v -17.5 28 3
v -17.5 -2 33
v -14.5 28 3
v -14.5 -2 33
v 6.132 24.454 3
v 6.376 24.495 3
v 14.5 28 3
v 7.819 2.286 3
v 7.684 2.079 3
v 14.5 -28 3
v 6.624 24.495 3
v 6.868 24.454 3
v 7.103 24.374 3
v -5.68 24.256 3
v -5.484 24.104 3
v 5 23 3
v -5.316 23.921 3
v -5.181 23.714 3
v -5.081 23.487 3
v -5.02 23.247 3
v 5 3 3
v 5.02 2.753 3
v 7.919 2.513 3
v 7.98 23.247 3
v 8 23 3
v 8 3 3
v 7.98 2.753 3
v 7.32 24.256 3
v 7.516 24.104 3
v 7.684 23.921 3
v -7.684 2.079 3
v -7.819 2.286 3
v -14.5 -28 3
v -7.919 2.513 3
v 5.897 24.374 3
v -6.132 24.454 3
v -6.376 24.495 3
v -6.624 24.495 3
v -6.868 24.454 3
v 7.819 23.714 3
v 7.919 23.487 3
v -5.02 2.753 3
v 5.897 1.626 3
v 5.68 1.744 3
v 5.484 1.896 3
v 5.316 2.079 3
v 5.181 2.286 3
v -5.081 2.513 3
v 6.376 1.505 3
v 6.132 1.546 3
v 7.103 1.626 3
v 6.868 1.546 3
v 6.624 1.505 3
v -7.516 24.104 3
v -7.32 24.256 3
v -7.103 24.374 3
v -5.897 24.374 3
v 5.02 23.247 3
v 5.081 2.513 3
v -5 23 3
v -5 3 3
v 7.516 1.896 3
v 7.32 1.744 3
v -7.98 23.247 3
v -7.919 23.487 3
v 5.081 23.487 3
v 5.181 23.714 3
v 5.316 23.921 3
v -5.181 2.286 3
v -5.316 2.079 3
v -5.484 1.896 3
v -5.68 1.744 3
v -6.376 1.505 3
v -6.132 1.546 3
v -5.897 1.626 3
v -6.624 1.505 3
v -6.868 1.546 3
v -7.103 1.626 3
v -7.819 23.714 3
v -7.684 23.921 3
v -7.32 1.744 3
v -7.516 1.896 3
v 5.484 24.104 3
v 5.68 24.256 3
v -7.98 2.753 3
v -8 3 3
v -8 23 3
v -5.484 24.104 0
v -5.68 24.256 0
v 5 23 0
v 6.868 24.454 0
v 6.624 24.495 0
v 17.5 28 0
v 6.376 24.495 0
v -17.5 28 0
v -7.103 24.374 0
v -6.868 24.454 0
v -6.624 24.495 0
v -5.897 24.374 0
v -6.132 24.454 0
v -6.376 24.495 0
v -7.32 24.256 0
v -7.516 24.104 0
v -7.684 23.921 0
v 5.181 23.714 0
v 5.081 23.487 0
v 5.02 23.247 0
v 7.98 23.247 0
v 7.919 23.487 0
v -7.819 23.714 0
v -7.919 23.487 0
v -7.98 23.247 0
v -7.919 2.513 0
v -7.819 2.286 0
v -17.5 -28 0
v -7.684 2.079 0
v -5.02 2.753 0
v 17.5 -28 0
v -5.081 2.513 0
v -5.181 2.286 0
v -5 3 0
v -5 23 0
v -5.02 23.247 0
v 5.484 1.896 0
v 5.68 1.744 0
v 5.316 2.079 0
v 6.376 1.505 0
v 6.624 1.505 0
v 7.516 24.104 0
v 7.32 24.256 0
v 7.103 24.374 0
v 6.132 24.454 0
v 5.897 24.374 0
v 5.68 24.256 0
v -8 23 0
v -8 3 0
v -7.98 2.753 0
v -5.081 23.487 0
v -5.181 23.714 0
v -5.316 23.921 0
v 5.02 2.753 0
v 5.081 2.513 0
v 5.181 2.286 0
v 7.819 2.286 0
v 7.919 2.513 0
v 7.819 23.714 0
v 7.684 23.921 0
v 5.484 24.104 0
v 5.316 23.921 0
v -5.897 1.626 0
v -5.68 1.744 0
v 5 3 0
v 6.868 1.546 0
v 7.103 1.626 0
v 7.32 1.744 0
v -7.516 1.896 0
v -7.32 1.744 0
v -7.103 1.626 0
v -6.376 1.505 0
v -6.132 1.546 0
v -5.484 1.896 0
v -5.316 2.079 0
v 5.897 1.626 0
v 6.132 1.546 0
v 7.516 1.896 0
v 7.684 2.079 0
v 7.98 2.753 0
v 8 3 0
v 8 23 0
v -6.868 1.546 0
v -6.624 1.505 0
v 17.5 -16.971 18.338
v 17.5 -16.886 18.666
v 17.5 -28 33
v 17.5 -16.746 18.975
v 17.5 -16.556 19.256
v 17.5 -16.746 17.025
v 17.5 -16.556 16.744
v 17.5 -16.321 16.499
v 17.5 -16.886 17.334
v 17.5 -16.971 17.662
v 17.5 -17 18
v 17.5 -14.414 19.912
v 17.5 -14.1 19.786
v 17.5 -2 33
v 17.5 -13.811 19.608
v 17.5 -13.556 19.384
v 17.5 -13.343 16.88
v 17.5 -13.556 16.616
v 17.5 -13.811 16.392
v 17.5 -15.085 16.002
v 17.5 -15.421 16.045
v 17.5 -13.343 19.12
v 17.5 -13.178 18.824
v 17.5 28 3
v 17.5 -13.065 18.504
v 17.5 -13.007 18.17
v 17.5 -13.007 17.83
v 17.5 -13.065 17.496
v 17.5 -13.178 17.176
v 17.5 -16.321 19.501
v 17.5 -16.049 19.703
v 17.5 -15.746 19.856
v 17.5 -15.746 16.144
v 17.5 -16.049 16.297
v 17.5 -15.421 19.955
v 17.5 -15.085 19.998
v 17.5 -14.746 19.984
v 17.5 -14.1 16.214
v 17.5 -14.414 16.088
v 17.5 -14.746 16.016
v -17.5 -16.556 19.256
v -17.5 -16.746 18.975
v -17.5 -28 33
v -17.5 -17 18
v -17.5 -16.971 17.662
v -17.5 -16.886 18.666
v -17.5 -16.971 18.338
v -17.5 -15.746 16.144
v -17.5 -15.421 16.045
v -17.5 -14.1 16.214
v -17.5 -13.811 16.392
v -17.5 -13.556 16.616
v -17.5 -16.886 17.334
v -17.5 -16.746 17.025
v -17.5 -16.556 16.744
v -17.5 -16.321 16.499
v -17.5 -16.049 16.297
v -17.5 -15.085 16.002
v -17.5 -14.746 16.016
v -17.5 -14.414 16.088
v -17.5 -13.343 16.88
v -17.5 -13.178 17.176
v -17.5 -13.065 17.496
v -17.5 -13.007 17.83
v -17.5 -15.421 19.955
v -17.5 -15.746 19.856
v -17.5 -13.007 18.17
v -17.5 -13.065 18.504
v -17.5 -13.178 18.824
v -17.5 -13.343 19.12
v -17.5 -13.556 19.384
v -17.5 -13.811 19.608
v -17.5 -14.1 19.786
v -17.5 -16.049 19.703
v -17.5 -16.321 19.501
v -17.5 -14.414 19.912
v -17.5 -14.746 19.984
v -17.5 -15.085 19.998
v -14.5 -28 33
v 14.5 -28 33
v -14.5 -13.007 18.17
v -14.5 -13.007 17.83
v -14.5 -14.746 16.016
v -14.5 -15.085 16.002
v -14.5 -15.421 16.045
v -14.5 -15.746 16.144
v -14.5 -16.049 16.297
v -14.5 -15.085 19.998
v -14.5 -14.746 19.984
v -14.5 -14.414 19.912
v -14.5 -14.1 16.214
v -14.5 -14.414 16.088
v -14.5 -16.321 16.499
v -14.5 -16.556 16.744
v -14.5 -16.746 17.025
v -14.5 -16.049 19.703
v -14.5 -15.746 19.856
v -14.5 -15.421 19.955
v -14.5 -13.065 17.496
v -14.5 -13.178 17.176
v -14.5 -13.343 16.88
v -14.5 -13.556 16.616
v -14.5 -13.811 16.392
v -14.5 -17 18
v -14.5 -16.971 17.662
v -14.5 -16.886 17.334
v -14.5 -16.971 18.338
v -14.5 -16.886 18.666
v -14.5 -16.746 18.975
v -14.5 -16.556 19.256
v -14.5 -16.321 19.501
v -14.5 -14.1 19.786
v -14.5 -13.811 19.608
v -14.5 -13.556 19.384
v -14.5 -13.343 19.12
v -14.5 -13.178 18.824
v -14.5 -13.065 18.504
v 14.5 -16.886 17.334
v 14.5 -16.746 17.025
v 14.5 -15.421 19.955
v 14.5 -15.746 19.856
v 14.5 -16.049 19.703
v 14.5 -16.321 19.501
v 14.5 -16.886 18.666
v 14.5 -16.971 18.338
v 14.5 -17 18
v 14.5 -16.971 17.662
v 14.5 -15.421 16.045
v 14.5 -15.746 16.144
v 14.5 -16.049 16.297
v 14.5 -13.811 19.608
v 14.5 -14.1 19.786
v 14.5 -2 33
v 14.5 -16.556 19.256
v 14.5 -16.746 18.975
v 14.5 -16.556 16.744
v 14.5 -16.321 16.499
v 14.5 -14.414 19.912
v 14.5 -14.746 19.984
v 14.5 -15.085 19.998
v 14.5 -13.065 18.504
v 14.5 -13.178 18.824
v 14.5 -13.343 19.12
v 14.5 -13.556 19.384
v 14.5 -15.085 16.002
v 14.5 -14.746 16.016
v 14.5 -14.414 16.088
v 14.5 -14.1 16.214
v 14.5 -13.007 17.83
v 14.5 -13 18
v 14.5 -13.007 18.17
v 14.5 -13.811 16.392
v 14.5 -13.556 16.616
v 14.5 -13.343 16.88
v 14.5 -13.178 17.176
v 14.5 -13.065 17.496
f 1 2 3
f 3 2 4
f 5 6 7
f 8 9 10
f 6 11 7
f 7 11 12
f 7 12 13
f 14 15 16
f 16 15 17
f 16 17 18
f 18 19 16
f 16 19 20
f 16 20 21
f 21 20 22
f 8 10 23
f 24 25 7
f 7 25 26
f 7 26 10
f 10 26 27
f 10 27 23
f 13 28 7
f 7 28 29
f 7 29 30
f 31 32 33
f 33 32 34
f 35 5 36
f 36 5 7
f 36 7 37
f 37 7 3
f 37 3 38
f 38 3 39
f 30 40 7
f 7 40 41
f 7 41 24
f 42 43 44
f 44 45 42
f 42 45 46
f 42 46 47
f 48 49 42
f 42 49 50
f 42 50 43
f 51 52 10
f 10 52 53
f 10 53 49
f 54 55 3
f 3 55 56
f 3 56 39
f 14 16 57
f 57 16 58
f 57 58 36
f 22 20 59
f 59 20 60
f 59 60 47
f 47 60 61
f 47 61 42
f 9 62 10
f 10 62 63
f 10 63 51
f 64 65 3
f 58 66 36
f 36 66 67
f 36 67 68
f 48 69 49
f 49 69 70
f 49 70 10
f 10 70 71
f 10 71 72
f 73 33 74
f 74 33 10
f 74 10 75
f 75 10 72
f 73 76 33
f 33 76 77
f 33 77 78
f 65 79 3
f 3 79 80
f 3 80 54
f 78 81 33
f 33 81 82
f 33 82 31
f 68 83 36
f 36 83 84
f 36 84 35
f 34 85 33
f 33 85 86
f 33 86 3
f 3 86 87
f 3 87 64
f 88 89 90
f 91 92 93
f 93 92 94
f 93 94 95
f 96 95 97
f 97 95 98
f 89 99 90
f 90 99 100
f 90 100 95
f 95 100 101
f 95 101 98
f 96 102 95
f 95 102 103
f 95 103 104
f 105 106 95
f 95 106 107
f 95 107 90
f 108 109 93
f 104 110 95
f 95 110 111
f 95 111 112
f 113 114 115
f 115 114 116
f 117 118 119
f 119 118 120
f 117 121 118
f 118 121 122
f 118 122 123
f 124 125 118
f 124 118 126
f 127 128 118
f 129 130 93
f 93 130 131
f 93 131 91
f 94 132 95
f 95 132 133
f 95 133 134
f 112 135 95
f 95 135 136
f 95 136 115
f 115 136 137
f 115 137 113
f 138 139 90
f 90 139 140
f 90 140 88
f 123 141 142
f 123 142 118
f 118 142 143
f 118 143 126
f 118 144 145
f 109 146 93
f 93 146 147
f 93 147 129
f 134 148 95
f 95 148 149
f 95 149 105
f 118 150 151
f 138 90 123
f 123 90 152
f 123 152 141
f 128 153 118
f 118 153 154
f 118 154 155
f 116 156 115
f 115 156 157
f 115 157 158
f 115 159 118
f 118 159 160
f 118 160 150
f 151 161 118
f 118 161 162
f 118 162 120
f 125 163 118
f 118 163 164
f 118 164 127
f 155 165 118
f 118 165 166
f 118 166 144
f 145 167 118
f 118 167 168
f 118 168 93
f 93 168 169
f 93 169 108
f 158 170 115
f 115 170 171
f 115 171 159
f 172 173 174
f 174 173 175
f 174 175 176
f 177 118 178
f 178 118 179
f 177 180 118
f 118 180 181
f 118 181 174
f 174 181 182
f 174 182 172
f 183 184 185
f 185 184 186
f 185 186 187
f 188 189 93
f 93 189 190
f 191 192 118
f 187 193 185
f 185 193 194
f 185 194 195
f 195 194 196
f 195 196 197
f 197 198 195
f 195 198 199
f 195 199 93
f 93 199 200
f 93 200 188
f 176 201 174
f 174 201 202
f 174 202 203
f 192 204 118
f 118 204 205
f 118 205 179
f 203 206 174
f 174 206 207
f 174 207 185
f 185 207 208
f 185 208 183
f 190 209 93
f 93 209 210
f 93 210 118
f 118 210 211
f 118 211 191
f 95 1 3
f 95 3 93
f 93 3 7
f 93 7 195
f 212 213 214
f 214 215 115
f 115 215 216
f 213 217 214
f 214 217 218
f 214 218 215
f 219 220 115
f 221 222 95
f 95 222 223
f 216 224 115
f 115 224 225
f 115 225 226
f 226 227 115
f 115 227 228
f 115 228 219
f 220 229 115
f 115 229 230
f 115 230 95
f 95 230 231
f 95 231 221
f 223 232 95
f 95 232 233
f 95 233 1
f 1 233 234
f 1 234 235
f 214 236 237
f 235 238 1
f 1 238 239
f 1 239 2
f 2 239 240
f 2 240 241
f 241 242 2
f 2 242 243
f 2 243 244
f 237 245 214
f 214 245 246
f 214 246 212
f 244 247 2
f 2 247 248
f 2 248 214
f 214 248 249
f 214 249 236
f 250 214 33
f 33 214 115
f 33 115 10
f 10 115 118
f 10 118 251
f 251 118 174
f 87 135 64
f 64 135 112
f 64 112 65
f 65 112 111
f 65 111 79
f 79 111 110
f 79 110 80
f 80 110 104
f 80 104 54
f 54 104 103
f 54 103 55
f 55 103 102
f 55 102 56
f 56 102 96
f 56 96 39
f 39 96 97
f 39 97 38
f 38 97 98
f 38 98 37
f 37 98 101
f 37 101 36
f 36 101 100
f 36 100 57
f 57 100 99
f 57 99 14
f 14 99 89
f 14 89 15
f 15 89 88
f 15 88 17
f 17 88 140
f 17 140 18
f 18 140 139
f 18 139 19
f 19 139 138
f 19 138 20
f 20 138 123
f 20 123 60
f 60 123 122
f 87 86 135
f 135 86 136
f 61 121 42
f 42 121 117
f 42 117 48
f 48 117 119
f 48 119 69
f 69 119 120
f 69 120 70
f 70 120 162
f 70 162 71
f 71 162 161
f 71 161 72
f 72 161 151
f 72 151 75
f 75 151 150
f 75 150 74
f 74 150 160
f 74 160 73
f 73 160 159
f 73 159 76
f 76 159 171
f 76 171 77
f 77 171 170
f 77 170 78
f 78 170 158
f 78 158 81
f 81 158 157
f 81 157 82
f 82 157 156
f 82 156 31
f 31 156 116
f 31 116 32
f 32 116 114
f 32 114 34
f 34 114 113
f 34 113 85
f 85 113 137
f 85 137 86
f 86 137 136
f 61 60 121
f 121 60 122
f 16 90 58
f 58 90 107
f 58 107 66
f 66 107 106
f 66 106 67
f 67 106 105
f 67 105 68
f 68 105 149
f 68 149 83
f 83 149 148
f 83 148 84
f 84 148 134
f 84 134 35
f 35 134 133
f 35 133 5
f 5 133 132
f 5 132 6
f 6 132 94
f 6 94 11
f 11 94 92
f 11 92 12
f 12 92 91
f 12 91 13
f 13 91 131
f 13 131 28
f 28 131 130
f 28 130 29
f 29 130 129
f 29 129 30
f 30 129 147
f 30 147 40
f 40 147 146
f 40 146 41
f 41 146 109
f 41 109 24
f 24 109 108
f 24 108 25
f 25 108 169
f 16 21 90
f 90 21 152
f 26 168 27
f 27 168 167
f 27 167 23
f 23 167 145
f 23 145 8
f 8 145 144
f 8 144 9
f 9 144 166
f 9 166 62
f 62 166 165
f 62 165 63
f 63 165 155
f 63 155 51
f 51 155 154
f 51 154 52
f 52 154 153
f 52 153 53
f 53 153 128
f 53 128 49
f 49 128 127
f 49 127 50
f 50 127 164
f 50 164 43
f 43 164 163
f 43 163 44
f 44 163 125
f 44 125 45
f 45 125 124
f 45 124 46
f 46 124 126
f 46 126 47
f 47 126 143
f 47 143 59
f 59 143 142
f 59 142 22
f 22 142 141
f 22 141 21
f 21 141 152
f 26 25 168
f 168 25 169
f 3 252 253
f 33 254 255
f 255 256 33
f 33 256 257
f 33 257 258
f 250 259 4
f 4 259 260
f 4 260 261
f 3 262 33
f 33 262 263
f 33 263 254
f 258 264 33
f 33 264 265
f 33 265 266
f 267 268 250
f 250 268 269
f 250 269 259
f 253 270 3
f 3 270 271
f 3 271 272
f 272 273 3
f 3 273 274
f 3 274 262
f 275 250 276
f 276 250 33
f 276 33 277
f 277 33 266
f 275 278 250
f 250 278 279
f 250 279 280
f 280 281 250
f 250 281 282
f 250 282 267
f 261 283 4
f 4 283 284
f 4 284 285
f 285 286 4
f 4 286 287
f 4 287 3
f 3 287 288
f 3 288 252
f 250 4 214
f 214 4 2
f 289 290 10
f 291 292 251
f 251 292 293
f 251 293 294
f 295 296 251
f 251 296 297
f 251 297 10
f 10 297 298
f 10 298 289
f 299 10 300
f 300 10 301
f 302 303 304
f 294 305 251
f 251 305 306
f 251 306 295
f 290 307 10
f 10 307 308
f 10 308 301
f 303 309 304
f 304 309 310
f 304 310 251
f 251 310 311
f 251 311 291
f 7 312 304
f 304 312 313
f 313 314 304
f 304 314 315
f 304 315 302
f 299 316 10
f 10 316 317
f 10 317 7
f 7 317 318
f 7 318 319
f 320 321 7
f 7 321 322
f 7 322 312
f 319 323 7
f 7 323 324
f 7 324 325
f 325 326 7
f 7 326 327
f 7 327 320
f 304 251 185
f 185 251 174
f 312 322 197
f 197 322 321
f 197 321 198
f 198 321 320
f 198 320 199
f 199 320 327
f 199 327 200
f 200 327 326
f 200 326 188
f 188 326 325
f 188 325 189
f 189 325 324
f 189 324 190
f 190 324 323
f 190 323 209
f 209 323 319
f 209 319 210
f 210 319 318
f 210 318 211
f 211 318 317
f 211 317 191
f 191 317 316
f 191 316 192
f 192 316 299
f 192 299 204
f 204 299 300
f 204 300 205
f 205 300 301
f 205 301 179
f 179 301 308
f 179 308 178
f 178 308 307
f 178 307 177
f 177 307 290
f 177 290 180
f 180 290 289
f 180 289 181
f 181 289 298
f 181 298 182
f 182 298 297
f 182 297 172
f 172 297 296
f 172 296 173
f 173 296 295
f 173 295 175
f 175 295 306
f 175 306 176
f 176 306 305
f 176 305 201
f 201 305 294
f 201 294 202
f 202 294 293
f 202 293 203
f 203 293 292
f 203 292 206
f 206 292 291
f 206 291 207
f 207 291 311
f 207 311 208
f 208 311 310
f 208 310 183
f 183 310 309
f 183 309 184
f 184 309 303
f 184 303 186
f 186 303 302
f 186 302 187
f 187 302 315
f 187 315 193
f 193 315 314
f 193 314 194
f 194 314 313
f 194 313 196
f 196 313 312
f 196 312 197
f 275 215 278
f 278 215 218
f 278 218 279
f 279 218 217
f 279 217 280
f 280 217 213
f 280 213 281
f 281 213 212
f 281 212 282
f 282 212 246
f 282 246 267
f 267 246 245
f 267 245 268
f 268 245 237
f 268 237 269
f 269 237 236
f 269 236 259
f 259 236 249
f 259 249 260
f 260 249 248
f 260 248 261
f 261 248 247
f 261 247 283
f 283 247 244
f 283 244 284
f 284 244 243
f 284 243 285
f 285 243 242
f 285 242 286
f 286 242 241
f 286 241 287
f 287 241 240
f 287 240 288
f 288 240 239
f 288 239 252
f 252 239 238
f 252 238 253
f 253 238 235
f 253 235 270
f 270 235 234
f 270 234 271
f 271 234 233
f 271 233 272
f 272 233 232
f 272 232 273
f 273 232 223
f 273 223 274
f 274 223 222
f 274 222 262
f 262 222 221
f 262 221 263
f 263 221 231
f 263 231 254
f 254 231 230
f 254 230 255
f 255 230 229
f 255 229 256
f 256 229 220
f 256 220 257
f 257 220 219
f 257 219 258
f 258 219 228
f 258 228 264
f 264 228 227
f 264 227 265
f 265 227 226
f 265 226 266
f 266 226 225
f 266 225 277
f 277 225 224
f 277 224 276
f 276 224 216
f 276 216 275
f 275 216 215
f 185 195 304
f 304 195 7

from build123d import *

# Parameters (mm, degrees)
SKETCH1_W               = 35
SKETCH1_H               = 56
BOSS_EXTRUDE1_DEPTH     = 3
SKETCH2_W               = 3
SKETCH2_H               = 26
BOSS_EXTRUDE2_DEPTH     = 30
SKETCH4_R               = 2
CUT_EXTRUDE1_DEPTH      = 33
CUT_EXTRUDE1_DEPTH_BACK = 4
BOSS_EXTRUDE3_DEPTH     = 35
SKETCH6_W               = 29
SKETCH6_H               = 30
CUT_EXTRUDE2_DEPTH      = 30


with BuildPart() as part:
    # Sketch1 → Boss-Extrude1 (new body)
    with BuildSketch(Plane.XY):
        Rectangle(SKETCH1_W, SKETCH1_H)
        with BuildLine():
            Line((-5, 23), (-5, 3))
            ThreePointArc((-5, 3), (-6.5, 1.5), (-8, 3))
            Line((-8, 3), (-8, 23))
            ThreePointArc((-8, 23), (-6.5, 24.5), (-5, 23))
        make_face(mode=Mode.SUBTRACT)
        with BuildLine():
            Line((5, 23), (5, 3))
            ThreePointArc((5, 3), (6.5, 1.5), (8, 3))
            Line((8, 3), (8, 23))
            ThreePointArc((8, 23), (6.5, 24.5), (5, 23))
        make_face(mode=Mode.SUBTRACT)
    extrude(amount=BOSS_EXTRUDE1_DEPTH)

    # Sketch2 → Boss-Extrude2 (add)
    with BuildSketch(Plane.XY.offset(3)):
        with Locations((-16, -15)):
            Rectangle(SKETCH2_W, SKETCH2_H)
        with Locations((16, -15)):
            Rectangle(SKETCH2_W, SKETCH2_H)
    extrude(amount=BOSS_EXTRUDE2_DEPTH)

    # Sketch4 → Cut-Extrude1 (cut, two sides)
    with BuildSketch(Plane.ZY.offset(-14.5)) as cut_extrude1_sk:
        with Locations((18, -15)):
            Circle(SKETCH4_R)
    extrude(amount=CUT_EXTRUDE1_DEPTH, mode=Mode.SUBTRACT)
    extrude(cut_extrude1_sk.sketch, amount=-CUT_EXTRUDE1_DEPTH_BACK, mode=Mode.SUBTRACT)

    # Sketch5 → Boss-Extrude3 (add, through all)
    with BuildSketch(Plane.ZY.offset(17.5)):
        Polygon((3, 28), (33, -2), (3, -2), align=None)
    extrude(amount=-BOSS_EXTRUDE3_DEPTH)

    # Sketch6 → Cut-Extrude2 (cut)
    with BuildSketch(Plane.XY.offset(33)):
        with Locations((0, 13)):
            Rectangle(SKETCH6_W, SKETCH6_H)
    extrude(amount=-CUT_EXTRUDE2_DEPTH, mode=Mode.SUBTRACT)


solid = part.part
